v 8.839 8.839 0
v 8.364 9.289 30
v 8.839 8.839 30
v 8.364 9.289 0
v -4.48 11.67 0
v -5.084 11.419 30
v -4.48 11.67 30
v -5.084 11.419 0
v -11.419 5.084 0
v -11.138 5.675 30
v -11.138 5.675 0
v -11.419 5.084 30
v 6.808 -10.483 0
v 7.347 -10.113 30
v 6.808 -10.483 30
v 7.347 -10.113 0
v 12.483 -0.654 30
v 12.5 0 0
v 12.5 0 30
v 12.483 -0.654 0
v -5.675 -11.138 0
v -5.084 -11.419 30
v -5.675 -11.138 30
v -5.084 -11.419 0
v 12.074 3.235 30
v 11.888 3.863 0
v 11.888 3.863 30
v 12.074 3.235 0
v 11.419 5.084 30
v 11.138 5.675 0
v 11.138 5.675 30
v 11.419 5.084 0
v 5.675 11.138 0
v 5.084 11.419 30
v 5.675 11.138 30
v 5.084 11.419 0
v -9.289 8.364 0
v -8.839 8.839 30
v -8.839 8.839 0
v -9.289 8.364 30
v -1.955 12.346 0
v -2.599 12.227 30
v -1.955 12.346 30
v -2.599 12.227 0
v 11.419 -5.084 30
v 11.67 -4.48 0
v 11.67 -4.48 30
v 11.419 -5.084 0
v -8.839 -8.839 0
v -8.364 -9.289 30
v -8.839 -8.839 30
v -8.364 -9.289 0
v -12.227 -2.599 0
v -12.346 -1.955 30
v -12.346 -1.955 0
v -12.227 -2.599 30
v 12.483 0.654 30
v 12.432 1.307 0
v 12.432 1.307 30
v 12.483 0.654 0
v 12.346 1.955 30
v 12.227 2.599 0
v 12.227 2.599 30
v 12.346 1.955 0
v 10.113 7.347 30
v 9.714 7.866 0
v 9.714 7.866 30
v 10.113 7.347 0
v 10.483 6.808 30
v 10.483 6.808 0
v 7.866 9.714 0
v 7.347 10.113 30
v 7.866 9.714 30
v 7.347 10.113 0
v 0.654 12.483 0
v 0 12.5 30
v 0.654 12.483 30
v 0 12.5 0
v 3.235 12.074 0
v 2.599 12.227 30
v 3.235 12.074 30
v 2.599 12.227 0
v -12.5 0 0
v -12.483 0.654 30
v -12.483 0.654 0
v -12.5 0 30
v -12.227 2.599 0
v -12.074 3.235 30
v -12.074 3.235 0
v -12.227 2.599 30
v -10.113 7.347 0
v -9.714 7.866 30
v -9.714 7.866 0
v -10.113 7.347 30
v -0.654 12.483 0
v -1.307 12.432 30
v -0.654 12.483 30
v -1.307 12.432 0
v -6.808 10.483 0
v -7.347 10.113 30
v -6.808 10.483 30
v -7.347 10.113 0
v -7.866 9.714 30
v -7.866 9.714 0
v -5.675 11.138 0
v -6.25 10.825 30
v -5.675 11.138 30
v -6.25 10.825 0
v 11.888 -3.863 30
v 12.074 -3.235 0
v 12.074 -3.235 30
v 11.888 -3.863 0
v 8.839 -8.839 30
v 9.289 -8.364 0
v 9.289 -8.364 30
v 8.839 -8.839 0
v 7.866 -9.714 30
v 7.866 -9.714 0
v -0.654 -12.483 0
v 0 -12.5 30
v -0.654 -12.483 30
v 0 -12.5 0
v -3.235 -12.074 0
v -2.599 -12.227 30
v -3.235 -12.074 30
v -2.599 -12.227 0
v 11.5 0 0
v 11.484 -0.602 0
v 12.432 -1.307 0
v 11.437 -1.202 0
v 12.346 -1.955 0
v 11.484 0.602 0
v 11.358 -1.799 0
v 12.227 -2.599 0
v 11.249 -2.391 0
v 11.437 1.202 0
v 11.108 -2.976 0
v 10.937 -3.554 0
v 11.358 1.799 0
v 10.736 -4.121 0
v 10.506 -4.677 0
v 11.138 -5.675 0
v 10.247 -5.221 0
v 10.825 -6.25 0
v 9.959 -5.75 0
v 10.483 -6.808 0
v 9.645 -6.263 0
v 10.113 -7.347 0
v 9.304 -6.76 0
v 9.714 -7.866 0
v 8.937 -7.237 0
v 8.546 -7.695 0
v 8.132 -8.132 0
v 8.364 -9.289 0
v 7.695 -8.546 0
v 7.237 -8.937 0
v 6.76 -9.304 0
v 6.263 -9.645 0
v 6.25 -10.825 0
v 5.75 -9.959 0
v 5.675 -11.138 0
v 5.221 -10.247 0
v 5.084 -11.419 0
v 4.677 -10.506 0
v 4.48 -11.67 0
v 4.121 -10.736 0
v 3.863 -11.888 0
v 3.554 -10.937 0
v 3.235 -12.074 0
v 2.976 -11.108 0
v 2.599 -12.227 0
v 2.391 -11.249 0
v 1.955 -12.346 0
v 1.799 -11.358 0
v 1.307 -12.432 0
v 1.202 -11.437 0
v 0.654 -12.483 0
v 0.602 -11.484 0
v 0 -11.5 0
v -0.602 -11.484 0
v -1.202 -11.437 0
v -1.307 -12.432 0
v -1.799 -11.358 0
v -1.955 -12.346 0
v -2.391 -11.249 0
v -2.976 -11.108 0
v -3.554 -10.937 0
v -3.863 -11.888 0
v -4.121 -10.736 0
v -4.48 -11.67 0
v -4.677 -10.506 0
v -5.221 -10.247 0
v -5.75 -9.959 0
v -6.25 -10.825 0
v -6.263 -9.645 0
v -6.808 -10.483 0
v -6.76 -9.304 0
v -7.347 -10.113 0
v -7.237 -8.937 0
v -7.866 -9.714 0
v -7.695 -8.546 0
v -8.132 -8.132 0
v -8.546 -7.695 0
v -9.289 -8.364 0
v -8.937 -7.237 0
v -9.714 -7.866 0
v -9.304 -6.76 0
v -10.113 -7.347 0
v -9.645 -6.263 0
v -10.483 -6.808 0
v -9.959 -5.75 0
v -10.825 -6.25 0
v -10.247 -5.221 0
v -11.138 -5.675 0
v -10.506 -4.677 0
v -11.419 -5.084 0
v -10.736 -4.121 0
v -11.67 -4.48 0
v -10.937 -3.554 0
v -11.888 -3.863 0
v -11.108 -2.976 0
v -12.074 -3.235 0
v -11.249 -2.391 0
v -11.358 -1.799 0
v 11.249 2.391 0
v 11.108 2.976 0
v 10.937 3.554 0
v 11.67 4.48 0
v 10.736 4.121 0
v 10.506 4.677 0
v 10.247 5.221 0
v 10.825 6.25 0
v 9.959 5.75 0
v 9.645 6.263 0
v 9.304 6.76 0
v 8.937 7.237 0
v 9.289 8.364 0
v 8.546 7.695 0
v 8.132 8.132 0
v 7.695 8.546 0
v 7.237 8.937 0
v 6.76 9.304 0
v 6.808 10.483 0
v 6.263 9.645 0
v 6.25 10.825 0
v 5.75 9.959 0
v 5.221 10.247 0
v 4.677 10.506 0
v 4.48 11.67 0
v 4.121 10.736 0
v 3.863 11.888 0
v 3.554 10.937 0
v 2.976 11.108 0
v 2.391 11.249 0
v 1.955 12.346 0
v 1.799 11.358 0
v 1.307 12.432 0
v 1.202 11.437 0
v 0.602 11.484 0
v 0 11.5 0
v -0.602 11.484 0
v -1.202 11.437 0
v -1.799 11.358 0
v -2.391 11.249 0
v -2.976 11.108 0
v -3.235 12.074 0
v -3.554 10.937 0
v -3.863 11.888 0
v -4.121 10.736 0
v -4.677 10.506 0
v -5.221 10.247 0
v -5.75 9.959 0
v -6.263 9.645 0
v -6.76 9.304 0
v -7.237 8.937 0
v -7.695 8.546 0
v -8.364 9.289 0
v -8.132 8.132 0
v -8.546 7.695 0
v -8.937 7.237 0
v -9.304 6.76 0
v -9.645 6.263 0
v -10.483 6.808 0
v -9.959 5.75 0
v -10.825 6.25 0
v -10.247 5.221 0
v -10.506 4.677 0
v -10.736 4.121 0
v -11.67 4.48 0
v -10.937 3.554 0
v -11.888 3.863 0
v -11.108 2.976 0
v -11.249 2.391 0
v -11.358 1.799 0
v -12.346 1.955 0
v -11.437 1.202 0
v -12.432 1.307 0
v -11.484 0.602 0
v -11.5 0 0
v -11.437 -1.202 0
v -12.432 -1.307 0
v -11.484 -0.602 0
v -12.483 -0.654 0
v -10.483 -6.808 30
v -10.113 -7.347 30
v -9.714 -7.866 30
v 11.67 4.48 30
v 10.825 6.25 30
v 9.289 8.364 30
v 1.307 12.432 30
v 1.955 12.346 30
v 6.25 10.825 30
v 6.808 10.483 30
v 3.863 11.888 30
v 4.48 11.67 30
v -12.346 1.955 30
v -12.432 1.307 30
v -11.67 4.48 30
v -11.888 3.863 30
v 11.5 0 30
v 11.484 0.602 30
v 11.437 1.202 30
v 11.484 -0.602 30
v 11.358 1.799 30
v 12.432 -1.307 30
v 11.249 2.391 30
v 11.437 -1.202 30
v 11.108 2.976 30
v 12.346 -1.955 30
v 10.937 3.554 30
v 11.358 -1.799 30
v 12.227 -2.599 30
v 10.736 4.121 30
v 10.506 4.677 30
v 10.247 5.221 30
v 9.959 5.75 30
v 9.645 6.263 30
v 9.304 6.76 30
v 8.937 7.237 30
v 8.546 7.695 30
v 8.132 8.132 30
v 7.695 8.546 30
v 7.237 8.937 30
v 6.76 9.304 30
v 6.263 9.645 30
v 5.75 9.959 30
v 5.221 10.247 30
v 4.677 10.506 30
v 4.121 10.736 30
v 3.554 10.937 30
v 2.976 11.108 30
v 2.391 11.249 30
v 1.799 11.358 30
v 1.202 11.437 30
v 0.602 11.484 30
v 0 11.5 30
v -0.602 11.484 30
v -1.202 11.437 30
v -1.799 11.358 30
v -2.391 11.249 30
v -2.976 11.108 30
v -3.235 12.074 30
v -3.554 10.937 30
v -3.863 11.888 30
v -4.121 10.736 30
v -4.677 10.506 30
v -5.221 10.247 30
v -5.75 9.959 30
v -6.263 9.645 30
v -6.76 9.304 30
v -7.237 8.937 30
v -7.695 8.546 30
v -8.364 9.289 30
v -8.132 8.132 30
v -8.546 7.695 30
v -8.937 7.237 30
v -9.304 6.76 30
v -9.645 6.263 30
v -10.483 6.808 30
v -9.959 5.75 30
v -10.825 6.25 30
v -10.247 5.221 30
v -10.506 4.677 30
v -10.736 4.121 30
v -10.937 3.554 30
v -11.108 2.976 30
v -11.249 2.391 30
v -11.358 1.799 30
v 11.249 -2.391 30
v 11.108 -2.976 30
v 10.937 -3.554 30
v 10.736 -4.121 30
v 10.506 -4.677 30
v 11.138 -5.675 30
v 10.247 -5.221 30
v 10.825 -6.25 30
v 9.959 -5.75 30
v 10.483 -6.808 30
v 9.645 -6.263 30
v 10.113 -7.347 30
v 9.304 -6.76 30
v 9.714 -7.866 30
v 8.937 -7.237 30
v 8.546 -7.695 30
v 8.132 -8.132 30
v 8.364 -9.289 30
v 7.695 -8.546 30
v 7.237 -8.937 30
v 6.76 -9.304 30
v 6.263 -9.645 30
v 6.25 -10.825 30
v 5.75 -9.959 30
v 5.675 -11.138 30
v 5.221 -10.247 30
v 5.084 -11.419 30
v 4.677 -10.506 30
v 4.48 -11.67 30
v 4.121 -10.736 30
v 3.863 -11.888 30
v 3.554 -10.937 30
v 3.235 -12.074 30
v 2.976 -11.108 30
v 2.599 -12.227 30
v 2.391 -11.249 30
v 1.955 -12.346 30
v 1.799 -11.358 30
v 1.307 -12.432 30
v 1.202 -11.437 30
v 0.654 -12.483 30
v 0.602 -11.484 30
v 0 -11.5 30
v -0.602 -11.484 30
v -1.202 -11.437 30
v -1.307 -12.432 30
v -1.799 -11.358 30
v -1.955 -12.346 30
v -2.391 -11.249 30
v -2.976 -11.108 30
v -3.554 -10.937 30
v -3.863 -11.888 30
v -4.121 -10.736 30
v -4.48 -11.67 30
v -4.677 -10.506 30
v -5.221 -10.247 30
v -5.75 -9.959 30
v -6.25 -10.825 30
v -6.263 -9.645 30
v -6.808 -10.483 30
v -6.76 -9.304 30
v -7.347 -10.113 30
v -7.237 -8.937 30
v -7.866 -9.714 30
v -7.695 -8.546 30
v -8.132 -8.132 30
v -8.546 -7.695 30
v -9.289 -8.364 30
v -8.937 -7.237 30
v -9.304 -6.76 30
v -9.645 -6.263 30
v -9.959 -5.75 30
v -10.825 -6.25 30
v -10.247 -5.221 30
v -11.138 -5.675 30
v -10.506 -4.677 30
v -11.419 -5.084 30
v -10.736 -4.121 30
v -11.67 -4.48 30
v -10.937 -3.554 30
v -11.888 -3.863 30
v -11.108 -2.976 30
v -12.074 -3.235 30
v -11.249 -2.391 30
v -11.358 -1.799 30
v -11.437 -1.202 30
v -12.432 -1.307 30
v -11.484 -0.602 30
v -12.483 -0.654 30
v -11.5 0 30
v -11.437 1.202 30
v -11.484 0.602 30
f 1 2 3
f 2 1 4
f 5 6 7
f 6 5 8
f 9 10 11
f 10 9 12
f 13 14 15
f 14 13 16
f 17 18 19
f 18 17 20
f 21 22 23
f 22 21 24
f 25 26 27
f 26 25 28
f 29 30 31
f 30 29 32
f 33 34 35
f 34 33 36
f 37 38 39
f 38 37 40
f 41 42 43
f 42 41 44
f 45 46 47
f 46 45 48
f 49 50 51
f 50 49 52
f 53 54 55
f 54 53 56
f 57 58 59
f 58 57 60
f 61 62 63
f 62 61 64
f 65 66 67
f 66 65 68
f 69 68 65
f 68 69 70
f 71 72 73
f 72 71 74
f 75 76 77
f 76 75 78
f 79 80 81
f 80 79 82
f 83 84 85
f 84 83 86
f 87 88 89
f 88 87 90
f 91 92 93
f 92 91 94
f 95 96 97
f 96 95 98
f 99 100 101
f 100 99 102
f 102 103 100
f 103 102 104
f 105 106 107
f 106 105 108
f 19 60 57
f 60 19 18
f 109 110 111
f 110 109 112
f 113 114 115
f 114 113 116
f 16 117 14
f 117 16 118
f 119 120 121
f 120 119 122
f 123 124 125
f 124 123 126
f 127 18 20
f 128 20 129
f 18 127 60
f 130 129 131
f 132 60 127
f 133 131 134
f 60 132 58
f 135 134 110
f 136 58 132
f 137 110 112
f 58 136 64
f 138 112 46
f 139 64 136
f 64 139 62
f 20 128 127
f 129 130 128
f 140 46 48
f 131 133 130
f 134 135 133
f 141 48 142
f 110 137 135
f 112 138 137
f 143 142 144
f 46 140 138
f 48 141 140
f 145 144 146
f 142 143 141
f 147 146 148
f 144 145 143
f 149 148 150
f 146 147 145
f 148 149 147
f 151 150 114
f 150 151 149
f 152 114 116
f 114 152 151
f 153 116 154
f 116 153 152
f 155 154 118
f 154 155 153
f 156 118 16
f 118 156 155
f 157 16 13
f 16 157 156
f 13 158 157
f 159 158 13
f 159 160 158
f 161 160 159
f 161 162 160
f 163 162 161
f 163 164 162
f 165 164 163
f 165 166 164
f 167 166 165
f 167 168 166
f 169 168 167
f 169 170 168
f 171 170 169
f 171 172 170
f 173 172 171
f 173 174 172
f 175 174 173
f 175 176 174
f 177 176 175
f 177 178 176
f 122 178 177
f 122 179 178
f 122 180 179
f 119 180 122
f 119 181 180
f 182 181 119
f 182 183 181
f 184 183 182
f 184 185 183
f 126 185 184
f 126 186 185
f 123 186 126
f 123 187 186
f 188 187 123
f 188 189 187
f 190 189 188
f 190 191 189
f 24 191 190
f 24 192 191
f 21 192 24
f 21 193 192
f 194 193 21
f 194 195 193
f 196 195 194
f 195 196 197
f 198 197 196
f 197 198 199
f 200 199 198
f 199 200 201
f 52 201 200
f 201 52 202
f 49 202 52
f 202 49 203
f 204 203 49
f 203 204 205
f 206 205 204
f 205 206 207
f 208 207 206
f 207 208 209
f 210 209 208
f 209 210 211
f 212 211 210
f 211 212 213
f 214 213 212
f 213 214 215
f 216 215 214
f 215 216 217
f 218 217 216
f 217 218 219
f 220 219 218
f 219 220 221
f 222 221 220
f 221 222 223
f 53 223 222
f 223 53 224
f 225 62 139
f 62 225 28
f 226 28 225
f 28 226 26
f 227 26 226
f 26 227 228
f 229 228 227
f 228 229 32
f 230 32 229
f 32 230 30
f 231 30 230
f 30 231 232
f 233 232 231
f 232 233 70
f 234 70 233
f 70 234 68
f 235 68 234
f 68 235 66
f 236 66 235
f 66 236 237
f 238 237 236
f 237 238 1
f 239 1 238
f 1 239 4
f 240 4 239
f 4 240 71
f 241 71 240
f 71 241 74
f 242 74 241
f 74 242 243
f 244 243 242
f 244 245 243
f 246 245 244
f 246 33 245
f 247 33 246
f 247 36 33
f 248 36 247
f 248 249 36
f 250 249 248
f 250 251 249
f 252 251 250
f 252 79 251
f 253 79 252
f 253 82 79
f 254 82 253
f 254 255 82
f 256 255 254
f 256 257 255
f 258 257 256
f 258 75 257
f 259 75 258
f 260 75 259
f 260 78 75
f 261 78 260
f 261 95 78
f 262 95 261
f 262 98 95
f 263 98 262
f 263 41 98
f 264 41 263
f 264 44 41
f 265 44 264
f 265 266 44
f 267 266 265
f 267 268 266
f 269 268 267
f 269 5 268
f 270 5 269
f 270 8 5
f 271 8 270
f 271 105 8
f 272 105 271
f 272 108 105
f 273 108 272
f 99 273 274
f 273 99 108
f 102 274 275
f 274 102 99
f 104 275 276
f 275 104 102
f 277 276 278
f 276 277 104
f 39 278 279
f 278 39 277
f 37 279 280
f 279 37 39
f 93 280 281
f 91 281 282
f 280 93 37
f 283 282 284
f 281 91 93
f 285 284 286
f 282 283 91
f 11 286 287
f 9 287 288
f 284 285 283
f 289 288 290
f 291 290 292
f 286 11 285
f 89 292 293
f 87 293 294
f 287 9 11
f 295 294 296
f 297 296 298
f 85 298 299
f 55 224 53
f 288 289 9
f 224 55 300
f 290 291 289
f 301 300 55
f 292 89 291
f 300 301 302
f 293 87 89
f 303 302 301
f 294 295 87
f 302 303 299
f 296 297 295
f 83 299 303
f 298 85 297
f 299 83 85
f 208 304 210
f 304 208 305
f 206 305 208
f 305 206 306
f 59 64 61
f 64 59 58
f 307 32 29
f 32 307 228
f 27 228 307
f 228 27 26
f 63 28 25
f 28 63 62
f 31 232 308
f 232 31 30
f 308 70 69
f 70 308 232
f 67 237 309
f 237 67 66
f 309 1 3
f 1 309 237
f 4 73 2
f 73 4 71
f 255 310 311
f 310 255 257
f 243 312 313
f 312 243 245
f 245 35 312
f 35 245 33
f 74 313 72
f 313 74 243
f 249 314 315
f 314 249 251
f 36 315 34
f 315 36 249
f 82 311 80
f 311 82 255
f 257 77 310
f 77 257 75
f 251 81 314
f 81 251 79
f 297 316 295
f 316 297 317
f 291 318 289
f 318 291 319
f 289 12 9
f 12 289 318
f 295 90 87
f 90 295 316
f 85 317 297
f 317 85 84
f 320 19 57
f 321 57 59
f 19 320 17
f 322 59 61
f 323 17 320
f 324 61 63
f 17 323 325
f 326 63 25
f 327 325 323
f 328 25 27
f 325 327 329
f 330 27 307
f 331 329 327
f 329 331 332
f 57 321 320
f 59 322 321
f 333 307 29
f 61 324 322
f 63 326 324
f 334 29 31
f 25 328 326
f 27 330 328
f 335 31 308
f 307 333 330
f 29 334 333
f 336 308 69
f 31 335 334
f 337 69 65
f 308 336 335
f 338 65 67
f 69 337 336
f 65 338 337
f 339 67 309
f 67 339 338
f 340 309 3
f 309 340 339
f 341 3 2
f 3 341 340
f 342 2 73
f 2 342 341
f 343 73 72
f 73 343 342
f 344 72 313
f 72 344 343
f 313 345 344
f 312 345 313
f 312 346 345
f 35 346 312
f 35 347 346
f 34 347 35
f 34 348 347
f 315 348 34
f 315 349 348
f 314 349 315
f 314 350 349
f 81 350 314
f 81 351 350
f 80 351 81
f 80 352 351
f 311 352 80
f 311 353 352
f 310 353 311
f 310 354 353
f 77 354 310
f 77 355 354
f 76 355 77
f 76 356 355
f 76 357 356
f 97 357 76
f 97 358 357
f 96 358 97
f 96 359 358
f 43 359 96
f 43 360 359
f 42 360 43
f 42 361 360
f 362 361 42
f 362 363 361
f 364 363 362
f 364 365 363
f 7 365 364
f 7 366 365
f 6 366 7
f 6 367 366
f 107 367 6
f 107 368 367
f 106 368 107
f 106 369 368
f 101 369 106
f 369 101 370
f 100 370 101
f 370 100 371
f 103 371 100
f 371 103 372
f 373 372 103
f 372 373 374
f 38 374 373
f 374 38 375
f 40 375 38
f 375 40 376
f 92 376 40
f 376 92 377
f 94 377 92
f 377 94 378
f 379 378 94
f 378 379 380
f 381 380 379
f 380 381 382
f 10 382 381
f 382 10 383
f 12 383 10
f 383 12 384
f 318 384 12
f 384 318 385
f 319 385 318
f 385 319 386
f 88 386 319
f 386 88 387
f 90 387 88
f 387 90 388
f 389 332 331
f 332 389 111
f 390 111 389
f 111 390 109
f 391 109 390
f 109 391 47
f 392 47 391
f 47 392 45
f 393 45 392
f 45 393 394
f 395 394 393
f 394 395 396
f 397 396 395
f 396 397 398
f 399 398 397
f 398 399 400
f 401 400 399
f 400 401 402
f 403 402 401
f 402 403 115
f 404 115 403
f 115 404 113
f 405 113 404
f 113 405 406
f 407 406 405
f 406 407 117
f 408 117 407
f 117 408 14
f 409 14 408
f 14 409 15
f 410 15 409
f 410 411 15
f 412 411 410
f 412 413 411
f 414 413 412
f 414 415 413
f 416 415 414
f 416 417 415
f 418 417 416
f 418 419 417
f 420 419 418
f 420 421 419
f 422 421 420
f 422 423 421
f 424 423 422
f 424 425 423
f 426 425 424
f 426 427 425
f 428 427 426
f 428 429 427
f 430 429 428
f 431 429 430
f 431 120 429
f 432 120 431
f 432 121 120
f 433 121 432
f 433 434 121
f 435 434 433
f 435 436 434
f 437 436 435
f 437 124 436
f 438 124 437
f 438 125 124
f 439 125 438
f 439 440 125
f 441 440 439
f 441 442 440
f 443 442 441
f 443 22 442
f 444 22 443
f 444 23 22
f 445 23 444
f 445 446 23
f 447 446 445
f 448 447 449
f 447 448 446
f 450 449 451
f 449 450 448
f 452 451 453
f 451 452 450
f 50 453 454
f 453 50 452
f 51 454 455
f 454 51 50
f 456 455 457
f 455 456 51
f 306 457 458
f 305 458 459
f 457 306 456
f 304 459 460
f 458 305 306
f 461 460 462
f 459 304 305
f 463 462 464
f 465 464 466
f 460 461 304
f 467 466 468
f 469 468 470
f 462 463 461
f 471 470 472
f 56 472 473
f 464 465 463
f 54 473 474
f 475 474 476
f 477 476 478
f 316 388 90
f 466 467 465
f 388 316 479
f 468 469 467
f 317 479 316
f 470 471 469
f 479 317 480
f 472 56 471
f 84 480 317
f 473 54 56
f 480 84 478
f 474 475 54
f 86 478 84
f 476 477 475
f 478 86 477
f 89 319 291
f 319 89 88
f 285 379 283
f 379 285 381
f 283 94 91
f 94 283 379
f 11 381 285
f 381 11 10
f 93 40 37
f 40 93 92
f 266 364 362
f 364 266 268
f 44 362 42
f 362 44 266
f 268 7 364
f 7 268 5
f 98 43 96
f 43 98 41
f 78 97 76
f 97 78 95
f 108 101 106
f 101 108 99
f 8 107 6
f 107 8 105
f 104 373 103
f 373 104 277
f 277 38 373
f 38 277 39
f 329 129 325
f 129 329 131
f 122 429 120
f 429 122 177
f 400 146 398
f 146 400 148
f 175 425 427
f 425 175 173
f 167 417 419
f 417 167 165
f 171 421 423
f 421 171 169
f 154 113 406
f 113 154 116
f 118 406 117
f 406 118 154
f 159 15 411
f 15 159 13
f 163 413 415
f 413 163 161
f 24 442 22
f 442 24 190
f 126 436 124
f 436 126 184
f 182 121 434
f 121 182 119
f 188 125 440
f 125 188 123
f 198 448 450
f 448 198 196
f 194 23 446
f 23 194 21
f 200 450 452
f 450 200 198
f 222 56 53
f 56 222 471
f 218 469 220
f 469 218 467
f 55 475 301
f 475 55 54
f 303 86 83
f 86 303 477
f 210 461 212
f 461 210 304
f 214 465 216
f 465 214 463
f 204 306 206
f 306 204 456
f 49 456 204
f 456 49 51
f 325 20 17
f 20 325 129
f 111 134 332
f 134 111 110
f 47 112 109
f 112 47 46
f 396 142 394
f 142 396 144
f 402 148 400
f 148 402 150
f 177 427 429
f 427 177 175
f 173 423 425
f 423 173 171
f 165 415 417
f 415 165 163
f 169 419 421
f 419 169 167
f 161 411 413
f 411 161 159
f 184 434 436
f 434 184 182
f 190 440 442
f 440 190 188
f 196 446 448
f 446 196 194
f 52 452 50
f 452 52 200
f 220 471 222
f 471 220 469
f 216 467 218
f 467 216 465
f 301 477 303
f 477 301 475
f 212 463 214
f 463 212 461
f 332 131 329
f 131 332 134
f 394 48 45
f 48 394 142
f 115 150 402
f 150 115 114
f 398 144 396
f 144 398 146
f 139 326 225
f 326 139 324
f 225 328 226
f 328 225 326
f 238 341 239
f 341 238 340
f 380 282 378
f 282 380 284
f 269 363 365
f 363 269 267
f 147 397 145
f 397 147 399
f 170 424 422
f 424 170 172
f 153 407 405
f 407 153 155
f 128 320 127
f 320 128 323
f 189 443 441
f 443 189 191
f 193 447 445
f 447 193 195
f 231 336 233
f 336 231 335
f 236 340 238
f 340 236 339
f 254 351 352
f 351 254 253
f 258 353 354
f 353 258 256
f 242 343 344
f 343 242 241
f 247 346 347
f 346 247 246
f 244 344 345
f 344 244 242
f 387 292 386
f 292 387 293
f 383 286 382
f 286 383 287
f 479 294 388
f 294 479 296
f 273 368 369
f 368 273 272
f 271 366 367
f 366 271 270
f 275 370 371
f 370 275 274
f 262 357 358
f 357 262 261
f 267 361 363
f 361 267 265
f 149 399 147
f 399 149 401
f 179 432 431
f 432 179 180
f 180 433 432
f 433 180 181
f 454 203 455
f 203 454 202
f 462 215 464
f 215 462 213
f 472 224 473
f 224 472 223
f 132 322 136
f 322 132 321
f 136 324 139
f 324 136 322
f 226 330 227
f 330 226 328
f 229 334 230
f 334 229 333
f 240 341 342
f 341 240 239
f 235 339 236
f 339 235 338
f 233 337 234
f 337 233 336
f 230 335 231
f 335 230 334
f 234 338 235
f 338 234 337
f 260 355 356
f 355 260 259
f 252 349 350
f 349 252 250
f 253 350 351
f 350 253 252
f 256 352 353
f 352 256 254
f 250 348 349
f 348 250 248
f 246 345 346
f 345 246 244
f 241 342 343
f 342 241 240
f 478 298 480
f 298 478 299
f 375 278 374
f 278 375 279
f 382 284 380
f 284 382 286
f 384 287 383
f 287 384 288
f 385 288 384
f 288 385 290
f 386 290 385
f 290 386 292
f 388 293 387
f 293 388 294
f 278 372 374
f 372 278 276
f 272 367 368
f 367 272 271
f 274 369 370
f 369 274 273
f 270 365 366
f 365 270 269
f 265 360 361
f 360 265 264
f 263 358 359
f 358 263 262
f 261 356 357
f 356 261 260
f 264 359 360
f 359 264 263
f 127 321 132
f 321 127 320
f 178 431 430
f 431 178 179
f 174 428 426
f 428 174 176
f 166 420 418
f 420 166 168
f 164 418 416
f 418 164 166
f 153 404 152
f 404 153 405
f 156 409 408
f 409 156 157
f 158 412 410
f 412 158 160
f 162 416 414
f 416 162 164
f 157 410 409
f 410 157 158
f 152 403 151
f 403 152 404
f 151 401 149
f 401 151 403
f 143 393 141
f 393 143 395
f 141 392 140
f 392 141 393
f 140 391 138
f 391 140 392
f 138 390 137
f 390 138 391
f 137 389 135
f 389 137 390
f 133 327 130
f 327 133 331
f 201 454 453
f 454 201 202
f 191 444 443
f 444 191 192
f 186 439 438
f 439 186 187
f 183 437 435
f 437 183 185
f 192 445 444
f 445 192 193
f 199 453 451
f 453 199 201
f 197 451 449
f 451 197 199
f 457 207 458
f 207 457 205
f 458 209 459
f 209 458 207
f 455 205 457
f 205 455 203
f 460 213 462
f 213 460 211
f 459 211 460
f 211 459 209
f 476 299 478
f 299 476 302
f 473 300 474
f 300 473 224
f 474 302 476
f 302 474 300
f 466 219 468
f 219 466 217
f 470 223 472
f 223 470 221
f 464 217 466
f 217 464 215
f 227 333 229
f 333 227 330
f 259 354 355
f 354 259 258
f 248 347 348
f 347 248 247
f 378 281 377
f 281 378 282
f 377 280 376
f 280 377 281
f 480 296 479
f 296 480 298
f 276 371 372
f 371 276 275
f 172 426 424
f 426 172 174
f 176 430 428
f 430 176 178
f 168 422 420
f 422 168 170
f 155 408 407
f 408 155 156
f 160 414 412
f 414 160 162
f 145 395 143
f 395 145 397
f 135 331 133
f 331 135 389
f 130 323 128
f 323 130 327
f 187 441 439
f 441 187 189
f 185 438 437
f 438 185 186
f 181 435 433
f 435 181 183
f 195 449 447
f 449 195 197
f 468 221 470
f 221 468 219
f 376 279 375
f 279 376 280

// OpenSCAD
difference() {
    $fn = 120;
    cylinder(h= 30, r = 25/2);
    cylinder(h= 30, r = 23/2);    
}
